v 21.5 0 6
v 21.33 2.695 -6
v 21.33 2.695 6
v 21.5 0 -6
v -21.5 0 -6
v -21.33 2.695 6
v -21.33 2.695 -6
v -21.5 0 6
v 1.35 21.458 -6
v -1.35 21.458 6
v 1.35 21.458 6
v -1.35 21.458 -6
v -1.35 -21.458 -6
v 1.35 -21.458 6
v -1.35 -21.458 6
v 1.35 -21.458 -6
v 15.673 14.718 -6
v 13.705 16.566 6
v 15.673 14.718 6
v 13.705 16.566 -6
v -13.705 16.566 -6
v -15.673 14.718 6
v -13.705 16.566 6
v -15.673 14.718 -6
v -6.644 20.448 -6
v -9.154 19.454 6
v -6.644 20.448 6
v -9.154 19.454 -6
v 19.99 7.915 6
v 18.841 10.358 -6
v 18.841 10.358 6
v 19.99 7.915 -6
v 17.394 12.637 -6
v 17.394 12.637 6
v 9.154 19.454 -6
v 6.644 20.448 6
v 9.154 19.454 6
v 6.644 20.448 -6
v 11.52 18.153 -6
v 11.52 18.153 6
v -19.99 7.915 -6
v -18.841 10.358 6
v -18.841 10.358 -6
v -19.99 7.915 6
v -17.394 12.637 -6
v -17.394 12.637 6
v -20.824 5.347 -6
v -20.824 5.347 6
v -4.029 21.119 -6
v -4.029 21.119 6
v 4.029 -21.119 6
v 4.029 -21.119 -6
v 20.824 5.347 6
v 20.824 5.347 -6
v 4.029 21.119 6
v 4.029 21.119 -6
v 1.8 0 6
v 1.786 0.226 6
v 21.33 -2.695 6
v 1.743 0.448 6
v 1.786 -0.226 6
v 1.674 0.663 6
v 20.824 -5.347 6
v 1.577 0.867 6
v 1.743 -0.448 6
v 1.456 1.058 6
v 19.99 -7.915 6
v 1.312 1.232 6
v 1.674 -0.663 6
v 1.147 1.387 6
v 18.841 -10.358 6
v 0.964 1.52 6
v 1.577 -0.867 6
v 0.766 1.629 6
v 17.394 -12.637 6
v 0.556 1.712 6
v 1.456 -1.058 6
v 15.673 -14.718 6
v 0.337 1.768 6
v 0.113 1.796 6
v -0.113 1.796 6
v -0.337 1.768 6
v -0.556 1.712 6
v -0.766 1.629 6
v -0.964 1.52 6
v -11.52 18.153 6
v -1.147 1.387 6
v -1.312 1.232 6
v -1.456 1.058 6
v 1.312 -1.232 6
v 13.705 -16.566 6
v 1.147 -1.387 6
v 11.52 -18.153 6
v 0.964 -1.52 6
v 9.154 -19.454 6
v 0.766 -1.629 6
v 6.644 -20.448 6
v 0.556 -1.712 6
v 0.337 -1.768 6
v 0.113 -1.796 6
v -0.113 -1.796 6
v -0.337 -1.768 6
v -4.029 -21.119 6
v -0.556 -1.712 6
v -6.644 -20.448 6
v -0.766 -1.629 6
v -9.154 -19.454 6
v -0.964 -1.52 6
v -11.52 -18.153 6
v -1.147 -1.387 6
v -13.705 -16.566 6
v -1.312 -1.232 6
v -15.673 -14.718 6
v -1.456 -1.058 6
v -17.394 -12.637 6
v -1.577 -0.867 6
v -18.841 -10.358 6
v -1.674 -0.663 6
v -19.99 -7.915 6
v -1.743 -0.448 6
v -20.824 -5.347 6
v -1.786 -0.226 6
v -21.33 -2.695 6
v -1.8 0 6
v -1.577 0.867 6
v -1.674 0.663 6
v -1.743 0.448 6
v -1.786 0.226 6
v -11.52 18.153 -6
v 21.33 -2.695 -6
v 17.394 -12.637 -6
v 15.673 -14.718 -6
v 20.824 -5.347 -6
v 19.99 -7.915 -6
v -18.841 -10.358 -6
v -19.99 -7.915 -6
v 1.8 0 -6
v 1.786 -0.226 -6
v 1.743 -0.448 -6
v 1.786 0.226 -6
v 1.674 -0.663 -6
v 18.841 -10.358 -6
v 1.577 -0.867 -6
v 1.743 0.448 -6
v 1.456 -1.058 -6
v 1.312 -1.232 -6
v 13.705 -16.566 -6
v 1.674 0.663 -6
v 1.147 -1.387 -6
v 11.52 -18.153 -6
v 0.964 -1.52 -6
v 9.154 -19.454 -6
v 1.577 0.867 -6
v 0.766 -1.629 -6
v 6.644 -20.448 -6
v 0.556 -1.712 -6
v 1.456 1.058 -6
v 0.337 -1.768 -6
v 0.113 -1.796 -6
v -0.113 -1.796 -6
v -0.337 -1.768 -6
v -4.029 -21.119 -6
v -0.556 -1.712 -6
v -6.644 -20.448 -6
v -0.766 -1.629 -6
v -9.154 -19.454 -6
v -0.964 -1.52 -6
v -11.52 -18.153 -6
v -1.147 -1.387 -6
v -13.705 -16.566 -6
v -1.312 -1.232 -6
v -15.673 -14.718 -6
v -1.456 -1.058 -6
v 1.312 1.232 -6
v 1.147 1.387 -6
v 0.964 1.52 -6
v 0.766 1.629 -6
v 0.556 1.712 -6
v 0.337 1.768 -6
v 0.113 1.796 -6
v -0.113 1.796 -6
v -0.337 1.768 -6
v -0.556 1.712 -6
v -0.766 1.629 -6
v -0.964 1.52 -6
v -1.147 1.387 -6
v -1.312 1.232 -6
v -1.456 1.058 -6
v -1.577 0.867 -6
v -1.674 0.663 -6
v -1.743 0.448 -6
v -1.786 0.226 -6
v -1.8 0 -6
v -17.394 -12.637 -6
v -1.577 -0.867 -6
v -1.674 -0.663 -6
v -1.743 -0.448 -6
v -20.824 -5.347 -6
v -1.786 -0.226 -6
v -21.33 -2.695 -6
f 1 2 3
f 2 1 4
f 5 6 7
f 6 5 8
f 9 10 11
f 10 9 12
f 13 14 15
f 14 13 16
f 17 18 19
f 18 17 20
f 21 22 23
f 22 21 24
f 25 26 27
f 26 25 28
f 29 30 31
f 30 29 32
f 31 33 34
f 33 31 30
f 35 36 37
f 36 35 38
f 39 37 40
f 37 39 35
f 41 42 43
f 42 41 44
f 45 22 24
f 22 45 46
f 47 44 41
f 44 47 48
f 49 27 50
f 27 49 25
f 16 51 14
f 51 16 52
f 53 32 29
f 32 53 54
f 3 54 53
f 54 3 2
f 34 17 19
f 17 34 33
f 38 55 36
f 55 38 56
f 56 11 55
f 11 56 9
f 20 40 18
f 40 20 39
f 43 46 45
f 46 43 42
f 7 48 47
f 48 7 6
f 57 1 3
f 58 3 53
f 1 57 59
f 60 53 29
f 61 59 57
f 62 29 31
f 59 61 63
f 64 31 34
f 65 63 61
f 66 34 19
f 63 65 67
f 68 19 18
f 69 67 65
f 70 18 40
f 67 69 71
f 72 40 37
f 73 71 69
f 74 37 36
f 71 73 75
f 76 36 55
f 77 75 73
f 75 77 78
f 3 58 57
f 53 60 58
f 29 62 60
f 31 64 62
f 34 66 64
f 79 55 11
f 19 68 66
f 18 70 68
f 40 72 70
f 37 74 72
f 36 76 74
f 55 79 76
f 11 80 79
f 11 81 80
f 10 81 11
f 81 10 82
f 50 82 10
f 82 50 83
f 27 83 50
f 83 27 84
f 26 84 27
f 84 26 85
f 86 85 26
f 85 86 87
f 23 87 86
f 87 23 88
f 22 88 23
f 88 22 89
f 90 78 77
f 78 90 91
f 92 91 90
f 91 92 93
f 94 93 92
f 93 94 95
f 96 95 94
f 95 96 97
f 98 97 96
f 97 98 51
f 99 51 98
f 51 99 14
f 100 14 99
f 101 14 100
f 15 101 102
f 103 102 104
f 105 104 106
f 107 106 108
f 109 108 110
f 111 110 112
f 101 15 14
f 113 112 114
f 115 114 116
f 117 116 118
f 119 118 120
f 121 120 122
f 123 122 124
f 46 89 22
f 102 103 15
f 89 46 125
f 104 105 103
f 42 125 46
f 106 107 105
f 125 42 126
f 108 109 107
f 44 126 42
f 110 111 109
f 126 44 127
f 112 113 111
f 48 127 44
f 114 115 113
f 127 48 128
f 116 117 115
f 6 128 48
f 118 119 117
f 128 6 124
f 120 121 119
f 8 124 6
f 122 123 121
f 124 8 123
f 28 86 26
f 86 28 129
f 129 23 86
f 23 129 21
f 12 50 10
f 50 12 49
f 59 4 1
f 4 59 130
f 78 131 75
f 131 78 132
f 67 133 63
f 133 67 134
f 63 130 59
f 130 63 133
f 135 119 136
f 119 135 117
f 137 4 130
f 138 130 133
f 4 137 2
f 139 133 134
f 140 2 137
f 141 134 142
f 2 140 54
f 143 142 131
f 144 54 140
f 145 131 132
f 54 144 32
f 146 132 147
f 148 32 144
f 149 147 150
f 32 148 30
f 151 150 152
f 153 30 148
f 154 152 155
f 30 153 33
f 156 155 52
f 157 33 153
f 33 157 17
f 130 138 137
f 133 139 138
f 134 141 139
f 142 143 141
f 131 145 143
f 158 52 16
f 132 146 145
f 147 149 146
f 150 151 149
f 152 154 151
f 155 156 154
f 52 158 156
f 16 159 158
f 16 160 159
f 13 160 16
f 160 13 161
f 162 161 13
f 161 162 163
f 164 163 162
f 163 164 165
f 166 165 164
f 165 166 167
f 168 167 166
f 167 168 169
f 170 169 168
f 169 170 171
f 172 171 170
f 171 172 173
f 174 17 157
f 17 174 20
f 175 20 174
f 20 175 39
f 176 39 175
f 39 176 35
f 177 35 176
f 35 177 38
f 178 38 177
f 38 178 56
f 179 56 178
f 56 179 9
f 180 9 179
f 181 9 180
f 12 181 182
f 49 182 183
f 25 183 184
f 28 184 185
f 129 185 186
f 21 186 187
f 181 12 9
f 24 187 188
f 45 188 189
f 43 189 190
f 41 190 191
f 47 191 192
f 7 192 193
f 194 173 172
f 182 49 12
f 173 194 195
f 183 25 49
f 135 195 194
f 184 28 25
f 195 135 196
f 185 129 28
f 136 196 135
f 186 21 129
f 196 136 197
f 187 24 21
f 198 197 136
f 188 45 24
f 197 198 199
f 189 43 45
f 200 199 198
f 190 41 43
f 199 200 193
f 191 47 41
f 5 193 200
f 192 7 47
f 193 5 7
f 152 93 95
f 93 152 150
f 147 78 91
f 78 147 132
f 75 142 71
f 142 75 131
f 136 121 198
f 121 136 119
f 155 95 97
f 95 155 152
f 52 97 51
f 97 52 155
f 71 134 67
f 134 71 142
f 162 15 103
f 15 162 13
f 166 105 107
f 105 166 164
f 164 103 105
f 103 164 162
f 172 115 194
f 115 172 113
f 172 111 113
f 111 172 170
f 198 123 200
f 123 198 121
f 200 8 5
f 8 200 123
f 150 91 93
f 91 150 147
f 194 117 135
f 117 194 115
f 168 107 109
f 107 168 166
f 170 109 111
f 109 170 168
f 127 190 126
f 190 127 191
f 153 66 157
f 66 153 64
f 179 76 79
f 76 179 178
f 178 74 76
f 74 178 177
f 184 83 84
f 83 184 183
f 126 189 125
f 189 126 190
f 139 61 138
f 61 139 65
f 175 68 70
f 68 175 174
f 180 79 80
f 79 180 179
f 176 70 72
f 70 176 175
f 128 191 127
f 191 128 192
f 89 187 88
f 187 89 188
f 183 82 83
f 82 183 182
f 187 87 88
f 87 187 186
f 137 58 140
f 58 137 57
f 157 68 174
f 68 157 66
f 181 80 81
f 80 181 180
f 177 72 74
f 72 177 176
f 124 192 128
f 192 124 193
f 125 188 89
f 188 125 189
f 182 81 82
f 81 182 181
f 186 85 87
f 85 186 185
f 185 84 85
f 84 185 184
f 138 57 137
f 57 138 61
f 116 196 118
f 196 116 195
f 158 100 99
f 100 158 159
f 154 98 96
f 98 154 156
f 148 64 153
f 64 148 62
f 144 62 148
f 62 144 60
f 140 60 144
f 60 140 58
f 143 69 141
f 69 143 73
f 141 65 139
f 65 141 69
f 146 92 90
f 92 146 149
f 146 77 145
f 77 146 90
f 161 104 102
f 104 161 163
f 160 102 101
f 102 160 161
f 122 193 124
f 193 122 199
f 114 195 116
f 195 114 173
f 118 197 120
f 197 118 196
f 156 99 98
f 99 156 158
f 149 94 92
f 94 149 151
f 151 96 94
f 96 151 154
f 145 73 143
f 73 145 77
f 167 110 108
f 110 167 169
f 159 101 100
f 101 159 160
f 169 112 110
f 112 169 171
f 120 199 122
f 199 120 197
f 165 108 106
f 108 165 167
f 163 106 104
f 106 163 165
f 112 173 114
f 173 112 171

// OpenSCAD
$fn = 50;


difference() {
	union() {
		translate(v = [0, 0, -6.0000000000]) {
			cylinder(h = 12, r = 21.5000000000);
		}
	}
	union() {
		translate(v = [0, 0, -100.0000000000]) {
			cylinder(h = 200, r = 1.8000000000);
		}
	}
}
